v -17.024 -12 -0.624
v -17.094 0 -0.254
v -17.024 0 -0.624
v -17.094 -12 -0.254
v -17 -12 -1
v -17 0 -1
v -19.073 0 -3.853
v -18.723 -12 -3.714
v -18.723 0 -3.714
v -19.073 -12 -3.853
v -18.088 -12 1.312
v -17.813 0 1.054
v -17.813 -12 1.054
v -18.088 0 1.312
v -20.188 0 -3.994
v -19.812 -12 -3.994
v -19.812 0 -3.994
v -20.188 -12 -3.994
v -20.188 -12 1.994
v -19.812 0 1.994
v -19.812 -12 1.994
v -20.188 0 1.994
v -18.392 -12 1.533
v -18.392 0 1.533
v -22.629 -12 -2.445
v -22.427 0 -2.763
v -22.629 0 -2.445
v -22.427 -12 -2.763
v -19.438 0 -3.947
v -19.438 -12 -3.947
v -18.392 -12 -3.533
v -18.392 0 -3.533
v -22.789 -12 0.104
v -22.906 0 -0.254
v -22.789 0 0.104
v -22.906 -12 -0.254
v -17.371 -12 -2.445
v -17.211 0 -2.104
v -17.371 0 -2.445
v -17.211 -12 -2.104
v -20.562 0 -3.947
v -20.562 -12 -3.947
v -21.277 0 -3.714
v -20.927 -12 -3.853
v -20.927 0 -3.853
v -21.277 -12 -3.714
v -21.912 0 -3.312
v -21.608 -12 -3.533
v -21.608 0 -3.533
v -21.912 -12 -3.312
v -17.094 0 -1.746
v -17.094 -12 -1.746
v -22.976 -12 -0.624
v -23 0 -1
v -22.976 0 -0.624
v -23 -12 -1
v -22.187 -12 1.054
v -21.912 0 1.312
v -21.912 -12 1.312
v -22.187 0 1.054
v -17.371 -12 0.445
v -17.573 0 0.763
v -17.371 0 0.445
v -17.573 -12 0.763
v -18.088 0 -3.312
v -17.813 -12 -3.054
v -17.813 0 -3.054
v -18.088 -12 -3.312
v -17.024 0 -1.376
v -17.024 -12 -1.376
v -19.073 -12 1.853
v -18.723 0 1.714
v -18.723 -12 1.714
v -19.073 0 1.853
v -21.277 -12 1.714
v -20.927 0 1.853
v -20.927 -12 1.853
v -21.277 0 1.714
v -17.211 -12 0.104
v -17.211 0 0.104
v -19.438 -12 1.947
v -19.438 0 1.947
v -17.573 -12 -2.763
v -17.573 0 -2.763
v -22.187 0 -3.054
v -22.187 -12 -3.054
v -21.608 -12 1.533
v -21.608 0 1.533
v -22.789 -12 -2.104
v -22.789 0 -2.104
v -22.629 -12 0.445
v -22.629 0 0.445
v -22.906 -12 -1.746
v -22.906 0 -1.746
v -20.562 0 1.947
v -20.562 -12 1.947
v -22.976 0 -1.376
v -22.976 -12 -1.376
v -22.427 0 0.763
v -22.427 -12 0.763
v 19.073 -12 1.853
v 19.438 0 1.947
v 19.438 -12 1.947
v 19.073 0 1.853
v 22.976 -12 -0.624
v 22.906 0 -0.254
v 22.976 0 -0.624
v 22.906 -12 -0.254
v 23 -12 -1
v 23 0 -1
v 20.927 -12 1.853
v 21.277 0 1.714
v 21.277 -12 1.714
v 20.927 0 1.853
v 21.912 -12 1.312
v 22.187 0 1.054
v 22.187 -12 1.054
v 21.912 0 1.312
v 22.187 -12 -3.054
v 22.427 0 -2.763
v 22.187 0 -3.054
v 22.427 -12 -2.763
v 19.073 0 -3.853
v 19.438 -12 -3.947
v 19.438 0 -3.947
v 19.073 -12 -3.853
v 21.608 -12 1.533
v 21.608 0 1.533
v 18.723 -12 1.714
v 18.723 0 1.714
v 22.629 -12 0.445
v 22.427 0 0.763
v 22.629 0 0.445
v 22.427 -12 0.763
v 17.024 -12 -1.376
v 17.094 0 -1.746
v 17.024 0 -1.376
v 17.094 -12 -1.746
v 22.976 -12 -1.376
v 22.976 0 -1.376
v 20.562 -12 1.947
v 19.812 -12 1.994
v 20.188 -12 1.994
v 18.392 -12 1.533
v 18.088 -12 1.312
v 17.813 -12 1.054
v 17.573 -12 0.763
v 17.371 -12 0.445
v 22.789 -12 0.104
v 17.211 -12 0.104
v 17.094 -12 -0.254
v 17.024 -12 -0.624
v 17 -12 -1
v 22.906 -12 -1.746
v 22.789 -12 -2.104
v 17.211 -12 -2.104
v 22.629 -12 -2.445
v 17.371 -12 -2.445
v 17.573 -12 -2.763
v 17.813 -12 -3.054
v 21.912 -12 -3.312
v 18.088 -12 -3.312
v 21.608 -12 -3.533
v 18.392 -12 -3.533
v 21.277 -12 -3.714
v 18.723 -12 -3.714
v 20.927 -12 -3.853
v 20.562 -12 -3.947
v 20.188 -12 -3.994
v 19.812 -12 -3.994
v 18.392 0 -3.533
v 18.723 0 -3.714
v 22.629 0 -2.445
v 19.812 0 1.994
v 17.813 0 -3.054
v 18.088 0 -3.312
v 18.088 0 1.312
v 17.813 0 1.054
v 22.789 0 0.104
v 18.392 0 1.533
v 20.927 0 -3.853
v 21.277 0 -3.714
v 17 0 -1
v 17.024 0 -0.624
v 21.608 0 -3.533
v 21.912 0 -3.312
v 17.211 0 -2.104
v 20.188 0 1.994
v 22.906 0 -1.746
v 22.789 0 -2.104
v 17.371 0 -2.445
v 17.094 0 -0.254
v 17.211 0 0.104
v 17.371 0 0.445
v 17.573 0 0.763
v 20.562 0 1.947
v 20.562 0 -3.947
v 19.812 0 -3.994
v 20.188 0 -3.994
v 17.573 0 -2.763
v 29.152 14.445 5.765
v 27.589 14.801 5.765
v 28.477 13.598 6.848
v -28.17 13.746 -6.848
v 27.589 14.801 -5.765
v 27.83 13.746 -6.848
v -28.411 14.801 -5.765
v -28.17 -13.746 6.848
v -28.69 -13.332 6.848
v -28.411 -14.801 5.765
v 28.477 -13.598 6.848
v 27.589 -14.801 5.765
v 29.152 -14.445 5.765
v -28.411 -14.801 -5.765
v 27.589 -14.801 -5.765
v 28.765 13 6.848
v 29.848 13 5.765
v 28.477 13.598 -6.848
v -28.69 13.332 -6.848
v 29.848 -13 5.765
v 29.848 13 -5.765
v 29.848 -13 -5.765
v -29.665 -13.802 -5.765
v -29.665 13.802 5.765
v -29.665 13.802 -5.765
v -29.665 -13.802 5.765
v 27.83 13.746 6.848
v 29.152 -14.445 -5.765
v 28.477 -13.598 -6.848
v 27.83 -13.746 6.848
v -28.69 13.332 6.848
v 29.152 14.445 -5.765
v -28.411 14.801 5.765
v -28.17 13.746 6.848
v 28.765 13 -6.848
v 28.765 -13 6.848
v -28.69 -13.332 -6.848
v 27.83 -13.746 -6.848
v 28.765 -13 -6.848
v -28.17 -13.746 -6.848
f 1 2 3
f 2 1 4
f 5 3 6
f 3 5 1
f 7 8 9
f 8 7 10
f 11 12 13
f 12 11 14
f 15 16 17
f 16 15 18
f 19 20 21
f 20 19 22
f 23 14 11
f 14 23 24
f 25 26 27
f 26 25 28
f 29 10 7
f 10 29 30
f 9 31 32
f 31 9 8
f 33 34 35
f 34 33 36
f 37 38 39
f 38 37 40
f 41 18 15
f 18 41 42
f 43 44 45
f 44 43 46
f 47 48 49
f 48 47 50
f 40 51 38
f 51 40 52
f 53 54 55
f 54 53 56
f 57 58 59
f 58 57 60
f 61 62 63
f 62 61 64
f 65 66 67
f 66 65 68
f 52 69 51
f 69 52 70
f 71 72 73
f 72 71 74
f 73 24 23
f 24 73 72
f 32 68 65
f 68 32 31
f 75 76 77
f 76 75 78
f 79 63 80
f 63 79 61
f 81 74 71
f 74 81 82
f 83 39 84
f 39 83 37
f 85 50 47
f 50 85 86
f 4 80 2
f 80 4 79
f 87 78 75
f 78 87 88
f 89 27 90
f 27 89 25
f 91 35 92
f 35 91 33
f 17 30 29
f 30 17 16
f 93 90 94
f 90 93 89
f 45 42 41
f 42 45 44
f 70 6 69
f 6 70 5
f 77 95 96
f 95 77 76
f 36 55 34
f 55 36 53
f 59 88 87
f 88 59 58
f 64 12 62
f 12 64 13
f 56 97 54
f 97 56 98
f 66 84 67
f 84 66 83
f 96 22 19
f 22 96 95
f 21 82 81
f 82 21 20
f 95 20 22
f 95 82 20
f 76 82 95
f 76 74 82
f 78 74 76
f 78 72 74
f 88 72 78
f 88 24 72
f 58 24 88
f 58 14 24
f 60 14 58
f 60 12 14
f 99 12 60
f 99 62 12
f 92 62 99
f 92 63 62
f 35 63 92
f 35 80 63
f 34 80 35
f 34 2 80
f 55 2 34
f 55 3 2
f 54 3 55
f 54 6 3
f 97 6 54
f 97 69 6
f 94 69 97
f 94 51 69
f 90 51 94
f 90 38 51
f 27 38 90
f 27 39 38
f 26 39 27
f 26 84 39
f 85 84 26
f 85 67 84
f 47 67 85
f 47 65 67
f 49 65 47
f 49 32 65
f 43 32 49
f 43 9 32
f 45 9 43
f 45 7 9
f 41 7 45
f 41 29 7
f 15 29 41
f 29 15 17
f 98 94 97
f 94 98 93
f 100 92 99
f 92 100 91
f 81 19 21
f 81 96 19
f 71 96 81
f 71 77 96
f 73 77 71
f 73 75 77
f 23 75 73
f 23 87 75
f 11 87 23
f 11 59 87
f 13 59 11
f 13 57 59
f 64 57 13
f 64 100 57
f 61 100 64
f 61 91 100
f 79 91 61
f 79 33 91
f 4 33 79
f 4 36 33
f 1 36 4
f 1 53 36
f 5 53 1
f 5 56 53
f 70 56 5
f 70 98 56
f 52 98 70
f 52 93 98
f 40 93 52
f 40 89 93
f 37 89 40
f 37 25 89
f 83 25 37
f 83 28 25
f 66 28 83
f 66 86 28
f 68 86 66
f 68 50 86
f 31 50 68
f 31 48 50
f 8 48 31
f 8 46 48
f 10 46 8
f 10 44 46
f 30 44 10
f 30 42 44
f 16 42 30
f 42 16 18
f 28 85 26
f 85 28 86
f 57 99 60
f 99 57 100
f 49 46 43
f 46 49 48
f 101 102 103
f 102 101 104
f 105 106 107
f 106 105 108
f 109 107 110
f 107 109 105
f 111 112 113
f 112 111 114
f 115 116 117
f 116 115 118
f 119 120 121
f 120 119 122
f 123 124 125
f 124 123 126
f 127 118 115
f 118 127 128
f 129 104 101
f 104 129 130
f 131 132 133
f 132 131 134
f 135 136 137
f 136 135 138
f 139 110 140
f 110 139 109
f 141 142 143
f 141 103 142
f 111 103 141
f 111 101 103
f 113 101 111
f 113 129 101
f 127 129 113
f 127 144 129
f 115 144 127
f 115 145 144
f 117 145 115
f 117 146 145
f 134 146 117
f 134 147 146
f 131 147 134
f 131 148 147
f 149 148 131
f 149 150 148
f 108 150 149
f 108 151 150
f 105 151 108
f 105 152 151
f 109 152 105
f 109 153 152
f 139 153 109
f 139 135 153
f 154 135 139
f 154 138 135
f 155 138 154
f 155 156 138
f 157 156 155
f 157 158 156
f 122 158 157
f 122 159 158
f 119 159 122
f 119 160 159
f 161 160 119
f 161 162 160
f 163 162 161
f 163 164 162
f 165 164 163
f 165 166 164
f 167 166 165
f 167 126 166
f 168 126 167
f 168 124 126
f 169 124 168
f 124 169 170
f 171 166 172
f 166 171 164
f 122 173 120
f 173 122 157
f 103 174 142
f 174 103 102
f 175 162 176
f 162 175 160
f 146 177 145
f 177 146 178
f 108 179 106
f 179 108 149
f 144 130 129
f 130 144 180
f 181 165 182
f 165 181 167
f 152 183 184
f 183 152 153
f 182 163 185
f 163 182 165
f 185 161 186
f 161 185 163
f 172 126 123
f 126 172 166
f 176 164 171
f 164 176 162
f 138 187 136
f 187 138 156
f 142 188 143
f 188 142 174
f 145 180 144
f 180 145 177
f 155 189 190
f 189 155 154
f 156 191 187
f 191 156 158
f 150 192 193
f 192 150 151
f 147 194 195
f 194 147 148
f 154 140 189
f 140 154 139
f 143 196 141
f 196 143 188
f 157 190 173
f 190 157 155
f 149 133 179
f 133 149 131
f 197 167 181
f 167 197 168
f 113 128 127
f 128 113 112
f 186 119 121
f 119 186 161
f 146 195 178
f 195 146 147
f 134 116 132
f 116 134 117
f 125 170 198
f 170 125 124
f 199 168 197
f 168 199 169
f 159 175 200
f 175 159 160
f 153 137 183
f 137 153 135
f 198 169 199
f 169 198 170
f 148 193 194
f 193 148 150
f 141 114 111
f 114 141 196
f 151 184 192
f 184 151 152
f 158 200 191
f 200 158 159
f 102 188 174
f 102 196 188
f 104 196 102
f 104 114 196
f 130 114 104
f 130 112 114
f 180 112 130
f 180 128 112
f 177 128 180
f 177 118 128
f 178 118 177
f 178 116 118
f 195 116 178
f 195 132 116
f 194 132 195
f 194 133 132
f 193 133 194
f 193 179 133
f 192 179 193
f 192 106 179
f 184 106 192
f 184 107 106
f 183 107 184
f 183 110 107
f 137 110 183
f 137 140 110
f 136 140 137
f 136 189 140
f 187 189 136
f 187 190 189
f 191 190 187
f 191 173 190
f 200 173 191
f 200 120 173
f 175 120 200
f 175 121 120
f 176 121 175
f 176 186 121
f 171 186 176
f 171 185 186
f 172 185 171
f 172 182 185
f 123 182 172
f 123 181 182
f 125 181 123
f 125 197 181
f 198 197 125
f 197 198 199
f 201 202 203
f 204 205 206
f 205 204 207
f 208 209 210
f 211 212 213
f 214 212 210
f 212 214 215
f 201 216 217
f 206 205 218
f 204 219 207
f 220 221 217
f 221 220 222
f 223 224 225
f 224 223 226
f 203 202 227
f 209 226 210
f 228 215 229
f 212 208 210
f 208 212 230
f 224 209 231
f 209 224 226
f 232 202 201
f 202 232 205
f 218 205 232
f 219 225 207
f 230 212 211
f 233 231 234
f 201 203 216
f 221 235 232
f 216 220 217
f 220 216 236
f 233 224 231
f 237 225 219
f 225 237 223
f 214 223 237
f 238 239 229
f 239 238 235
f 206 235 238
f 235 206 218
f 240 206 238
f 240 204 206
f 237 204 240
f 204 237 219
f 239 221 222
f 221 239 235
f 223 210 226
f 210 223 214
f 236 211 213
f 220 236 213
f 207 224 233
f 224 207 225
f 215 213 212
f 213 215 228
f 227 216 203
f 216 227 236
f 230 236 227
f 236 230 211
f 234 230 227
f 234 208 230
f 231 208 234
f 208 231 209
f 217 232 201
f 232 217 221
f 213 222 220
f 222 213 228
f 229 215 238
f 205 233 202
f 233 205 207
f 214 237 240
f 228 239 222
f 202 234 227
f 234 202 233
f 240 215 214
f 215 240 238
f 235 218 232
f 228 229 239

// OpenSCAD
// Parameters
block_length = 60;
block_width = 30;
block_thickness = 10;
hole_diameter = 6;
hole_radius = hole_diameter / 2;
hole_offset_x = 10; // from each end
hole_center_y = block_width / 2;

// Rounded rectangle module
module rounded_block(length, width, height, radius) {
    minkowski() {
        cube([length - 2*radius, width - 2*radius, height], center = true);
        sphere(r=radius);
    }
}

// Main block with holes
difference() {
    // Rounded rectangular block
    translate([0, 0, 0])
        rounded_block(block_length, block_width, block_thickness, 2);

    // Holes
    for (x = [hole_offset_x, block_length - hole_offset_x]) {
        translate([x - block_length/2, hole_center_y - block_width/2, -1])
            rotate([90, 0, 0])
                cylinder(h = block_thickness + 2, r = hole_radius, $fn=50);
    }
}
